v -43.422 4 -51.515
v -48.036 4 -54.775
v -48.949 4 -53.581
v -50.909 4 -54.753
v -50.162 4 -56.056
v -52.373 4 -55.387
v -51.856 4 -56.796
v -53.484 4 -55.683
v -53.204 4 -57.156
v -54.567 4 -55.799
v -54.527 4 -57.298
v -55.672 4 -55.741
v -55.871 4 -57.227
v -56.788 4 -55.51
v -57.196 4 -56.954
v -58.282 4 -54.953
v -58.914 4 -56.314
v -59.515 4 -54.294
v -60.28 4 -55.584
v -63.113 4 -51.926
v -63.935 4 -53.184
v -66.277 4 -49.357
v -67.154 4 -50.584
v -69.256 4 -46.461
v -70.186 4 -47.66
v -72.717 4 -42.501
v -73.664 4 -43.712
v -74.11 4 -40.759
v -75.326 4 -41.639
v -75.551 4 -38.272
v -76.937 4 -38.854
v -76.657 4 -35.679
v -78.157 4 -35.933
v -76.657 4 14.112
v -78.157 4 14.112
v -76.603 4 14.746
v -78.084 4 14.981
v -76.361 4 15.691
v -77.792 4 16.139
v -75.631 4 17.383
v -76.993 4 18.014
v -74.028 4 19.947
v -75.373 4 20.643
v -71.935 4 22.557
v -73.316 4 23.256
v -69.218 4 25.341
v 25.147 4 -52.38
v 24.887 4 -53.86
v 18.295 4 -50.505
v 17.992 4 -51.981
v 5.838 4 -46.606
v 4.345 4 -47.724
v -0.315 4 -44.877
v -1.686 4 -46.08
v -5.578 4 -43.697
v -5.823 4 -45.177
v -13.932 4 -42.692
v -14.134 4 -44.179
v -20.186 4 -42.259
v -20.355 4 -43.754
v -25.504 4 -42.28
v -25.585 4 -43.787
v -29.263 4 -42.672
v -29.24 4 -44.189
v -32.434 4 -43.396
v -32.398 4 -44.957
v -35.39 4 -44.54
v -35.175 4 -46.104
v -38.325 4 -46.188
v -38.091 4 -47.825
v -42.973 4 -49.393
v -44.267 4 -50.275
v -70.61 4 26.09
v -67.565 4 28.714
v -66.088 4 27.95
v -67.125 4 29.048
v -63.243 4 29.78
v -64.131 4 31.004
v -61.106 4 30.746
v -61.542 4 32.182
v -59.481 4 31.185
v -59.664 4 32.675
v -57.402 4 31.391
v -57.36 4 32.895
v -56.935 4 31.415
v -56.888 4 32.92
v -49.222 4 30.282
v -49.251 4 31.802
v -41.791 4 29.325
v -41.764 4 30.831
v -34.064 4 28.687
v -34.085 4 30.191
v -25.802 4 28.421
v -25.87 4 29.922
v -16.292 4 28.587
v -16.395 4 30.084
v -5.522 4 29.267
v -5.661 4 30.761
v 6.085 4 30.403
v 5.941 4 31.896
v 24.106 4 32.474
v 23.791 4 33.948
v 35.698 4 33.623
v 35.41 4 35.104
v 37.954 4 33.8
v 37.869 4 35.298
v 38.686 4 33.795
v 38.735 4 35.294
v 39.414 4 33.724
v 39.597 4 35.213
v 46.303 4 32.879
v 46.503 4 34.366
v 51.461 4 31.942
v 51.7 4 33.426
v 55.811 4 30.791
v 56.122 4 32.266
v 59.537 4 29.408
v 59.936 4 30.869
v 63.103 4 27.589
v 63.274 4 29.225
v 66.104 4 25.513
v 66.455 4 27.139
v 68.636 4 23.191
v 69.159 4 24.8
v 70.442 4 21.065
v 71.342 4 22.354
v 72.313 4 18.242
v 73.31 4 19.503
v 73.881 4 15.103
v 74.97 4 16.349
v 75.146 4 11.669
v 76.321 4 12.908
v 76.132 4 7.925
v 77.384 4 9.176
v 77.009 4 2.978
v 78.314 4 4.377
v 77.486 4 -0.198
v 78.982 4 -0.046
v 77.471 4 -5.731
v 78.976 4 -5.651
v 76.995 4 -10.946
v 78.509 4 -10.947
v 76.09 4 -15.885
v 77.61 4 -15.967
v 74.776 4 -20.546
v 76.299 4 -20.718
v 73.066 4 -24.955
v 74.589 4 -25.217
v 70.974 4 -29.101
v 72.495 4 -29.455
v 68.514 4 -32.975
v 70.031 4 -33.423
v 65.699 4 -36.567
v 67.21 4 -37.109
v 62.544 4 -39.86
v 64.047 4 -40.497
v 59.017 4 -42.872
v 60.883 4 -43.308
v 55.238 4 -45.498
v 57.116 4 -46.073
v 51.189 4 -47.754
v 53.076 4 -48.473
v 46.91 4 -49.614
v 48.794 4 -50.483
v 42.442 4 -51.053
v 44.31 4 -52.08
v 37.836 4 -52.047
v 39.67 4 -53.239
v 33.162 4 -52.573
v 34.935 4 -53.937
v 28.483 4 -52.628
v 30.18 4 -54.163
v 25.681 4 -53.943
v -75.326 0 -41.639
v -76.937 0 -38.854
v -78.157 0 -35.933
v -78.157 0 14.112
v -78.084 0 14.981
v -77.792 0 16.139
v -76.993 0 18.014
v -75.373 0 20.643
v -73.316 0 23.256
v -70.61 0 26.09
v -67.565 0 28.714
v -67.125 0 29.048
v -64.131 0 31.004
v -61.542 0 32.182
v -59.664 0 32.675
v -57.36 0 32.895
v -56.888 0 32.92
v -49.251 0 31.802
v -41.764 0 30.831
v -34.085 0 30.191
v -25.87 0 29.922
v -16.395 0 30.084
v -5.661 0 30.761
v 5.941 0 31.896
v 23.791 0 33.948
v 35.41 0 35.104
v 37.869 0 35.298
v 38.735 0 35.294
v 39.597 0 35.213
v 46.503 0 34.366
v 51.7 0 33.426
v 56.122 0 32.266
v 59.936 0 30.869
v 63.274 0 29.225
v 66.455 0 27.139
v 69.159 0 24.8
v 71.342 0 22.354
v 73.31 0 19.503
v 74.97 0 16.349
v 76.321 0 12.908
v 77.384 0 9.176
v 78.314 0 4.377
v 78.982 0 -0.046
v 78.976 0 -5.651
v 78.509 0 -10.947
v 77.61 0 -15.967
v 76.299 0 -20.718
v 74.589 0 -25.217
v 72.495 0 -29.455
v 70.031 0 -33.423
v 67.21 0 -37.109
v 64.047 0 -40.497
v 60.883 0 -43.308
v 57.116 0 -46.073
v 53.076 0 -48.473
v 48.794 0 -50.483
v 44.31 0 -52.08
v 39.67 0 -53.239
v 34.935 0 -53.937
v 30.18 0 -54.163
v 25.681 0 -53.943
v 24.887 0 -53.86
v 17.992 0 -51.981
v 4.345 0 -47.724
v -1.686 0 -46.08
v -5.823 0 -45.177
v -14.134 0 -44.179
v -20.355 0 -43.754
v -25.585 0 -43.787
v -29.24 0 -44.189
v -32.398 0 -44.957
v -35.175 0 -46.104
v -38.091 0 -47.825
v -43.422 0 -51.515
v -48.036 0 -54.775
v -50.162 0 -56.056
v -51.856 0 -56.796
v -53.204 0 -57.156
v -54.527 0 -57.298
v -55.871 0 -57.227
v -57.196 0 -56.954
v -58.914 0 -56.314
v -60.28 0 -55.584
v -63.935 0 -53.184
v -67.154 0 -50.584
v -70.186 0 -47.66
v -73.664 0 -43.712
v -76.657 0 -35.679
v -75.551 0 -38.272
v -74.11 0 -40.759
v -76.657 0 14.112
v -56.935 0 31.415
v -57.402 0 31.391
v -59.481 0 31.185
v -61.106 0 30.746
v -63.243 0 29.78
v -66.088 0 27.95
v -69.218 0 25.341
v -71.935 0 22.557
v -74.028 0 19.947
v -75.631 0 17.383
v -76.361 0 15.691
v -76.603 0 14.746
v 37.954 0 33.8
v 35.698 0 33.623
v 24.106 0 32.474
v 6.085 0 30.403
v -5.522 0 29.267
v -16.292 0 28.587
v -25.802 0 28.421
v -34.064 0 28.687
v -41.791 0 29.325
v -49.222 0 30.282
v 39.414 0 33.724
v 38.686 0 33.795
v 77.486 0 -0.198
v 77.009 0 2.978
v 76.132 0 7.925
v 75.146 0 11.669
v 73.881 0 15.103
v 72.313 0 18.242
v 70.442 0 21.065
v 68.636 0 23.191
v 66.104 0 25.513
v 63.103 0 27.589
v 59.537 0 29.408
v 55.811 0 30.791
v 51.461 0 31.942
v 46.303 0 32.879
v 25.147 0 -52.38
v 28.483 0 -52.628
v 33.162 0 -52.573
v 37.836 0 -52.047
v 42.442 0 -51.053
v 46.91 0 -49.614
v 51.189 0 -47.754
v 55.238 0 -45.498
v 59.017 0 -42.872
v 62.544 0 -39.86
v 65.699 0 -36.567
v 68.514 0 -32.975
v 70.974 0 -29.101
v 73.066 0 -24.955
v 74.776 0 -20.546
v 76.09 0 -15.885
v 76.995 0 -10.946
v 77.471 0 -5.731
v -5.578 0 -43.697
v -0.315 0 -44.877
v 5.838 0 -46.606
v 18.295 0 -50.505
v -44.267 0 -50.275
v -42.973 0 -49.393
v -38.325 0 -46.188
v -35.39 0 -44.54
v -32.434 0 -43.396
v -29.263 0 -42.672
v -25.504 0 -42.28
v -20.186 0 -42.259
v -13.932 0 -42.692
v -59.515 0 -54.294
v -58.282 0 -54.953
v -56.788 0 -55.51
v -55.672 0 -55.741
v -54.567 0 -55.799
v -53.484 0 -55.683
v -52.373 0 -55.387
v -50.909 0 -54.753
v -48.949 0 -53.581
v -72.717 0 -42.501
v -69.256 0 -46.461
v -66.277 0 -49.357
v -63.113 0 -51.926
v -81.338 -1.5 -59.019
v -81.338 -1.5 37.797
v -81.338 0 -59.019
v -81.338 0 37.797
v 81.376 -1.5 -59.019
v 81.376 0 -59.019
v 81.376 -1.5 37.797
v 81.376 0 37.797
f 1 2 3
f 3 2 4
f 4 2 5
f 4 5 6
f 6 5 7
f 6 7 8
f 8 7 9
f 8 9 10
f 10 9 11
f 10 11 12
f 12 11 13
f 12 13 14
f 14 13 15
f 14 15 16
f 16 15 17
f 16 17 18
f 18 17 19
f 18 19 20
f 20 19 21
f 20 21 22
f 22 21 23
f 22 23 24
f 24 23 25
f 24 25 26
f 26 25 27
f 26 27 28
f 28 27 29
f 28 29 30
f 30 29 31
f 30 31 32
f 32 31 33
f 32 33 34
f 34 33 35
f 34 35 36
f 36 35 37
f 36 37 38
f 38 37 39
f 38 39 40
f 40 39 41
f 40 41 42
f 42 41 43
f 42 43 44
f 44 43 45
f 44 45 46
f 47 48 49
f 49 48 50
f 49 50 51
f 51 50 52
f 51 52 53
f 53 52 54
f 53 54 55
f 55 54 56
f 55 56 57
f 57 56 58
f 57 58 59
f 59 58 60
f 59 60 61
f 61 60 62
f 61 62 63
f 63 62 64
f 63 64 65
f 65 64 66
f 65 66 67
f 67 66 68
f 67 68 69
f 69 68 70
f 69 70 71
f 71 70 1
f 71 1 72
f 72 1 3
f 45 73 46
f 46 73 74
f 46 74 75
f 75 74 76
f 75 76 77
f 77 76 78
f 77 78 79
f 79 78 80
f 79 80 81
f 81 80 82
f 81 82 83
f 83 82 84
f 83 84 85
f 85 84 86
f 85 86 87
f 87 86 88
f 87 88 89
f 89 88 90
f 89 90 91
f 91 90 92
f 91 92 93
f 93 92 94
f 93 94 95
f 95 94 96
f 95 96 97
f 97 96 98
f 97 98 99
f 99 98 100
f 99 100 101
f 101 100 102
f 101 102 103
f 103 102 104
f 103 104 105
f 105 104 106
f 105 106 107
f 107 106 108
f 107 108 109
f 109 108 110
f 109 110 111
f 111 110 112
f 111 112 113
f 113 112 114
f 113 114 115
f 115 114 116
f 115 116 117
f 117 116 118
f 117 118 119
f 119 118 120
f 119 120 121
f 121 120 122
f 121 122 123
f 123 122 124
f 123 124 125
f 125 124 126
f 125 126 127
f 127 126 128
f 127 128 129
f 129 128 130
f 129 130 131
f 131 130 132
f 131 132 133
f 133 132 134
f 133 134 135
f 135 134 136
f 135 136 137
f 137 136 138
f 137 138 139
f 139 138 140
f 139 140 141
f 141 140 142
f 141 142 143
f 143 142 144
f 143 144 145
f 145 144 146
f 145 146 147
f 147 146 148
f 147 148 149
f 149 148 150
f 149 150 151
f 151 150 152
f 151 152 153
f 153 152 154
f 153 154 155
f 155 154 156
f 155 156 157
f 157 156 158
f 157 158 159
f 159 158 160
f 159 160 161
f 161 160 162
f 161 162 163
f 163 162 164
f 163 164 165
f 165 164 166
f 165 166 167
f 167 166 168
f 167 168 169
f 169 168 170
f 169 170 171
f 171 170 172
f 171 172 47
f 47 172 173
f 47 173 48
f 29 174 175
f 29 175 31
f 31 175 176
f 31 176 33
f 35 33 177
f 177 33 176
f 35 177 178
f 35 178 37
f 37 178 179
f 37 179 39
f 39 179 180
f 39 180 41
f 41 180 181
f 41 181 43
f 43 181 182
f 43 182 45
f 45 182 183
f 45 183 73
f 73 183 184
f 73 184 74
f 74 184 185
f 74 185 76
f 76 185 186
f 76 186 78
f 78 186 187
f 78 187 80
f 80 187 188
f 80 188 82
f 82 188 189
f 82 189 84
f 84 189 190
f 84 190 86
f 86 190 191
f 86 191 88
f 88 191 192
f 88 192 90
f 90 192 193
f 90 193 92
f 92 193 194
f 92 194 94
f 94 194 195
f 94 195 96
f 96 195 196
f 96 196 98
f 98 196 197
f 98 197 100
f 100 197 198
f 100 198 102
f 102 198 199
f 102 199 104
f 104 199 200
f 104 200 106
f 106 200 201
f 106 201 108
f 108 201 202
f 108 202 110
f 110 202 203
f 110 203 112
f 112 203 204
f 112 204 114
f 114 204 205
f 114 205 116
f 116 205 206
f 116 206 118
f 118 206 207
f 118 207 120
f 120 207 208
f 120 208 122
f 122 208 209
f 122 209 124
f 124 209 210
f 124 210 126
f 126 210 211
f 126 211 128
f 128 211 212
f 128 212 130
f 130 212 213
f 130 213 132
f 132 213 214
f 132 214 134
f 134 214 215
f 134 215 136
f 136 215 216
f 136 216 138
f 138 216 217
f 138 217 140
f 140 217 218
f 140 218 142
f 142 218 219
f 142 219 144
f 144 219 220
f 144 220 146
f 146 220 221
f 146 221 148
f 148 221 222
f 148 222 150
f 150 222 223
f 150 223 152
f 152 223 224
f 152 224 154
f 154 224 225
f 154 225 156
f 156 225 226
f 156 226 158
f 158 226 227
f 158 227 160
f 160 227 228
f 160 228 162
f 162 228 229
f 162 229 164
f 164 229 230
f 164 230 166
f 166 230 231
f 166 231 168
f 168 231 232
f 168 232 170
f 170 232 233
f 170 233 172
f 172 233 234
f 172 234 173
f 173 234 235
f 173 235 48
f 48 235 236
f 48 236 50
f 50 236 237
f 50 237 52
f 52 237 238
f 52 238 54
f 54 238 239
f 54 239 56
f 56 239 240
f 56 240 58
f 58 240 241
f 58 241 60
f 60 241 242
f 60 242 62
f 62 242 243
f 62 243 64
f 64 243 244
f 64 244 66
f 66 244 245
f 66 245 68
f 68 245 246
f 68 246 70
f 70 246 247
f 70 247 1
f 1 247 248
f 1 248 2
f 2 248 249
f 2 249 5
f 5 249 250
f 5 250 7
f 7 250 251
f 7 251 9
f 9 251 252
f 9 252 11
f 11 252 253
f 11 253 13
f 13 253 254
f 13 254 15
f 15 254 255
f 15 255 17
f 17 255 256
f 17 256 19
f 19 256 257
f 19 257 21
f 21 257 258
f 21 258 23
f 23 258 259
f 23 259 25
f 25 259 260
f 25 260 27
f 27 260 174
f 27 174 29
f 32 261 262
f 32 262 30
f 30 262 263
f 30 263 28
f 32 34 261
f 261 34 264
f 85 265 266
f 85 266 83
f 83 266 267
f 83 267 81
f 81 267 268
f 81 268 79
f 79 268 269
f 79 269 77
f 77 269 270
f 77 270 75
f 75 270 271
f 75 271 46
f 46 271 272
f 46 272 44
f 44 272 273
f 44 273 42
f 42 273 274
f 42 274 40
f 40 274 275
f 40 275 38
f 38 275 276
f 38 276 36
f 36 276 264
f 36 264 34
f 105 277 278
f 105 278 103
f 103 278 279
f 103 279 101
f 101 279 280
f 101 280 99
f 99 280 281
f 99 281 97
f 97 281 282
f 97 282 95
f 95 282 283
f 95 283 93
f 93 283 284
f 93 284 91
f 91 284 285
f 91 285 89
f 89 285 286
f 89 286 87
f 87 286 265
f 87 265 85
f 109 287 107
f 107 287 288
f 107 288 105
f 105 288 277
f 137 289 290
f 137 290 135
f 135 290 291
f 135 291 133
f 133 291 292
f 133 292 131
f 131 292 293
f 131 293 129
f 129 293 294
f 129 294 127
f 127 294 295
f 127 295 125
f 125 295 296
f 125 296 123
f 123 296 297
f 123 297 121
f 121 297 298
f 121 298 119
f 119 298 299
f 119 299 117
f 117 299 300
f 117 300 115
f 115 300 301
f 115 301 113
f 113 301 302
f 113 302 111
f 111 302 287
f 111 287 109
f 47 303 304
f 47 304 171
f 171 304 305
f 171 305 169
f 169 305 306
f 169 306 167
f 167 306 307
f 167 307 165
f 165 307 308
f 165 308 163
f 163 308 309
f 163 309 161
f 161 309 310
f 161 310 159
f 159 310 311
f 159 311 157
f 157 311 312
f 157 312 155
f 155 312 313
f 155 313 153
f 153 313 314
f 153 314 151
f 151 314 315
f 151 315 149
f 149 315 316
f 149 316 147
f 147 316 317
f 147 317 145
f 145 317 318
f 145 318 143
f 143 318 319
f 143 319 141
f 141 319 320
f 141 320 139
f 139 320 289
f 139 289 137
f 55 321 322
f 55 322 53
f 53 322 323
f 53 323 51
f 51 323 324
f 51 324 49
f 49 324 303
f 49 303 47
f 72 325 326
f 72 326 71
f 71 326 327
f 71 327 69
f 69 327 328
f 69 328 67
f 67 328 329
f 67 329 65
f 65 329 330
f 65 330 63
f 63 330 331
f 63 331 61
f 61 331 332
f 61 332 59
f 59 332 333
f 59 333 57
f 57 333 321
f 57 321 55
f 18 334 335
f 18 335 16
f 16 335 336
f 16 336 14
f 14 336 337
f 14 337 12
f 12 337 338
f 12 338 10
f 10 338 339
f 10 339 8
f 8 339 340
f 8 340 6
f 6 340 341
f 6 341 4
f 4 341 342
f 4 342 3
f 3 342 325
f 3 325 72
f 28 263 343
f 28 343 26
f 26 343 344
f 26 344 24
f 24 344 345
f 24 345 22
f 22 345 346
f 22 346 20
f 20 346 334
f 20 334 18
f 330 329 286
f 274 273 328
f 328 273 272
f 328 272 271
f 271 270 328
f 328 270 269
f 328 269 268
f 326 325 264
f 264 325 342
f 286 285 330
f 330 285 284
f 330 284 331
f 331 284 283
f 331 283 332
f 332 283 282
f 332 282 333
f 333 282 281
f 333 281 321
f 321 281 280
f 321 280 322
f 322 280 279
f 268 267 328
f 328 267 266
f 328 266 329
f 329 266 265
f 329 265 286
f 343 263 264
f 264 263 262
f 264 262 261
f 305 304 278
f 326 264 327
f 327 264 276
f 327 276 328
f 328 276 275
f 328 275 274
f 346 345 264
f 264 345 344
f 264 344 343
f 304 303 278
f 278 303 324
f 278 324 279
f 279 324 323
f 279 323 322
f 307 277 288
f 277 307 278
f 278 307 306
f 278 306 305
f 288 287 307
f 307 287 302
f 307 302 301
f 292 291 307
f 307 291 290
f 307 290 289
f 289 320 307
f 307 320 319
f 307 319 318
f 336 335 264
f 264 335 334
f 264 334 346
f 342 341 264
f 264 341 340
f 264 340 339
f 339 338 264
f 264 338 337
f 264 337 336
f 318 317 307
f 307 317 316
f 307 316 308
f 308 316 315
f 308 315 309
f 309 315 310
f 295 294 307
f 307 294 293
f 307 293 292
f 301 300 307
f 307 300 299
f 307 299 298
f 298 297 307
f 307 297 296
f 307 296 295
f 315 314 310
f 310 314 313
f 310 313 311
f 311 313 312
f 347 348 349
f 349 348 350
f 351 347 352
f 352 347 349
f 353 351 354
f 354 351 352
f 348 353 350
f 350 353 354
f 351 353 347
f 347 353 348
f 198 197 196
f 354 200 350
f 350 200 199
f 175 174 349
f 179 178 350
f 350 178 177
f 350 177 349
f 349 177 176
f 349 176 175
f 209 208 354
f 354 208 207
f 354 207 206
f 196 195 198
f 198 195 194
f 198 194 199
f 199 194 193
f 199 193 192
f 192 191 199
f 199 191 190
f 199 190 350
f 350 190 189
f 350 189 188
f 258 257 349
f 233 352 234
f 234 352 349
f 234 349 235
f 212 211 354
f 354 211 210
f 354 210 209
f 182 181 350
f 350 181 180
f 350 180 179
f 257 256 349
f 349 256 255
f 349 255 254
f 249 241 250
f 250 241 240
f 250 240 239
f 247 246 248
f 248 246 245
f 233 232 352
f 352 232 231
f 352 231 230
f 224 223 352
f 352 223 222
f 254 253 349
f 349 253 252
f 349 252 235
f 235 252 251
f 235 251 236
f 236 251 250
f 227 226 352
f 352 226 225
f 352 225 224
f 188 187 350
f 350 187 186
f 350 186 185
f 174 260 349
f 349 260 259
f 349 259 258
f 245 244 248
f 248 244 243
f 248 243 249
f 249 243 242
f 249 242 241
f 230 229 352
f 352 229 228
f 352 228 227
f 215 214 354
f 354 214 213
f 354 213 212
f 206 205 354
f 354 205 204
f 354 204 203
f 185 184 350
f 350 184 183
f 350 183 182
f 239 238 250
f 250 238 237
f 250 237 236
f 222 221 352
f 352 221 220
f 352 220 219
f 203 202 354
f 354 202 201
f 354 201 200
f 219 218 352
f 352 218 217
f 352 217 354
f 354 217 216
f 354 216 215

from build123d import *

# Parameters (mm, degrees)
BOSS_EXTRUDE2_DEPTH = 4
SKETCH3_W           = 162.713811117
SKETCH3_H           = 96.815600969
BOSS_EXTRUDE3_DEPTH = 1.5


with BuildPart() as part:
    # Sketch2 → Boss-Extrude2 (new body)
    with BuildSketch(Plane(origin=(0, 0, 0), x_dir=(1, 0, 0), z_dir=(0, 1, 0))):
        with BuildLine():
            Line((-78.157135648, 35.933017955), (-78.157135648, -14.112200016))
            add(Edge.make_bspline(
                [(-78.157135648, -14.112200016), (-78.155939648, -14.752373068), (-77.91728619, -15.977732307), (-77.067841768, -17.98284043), (-75.853766997, -20.009770375), (-73.882725179, -22.698478403), (-70.990105914, -25.858420252), (-67.409604046, -28.950378503), (-64.099125185, -31.13485728), (-61.237861598, -32.390367883), (-59.243018884, -32.778941146), (-57.84210102, -32.875591912), (-57.21182785, -32.900669531), (-56.88815566, -32.920328572)],
                knots=[0.000409109, 0.000409109, 0.000409109, 0.000409109, 0.062842692, 0.125276275, 0.187709857, 0.25014344, 0.375010605, 0.499877771, 0.624744936, 0.749612101, 0.874479267, 0.936912849, 0.999346432, 0.999346432, 0.999346432, 0.999346432], degree=3))
            add(Edge.make_bspline(
                [(-56.88815566, -32.920328572), (-56.642696558, -32.89075012), (-56.160280632, -32.83055745), (-55.130884334, -32.690361106), (-53.775402575, -32.490990423), (-52.023319465, -32.222109613), (-49.529202359, -31.839803624), (-46.118946018, -31.34265718), (-41.582935401, -30.787201605), (-36.628570251, -30.3313494), (-29.499663542, -29.915818278), (-19.674874473, -29.844145156), (-6.636878998, -30.578186936), (5.085601081, -31.774869617), (14.875722867, -32.919022634), (22.392678178, -33.800910905), (30.053166384, -34.637100414), (35.270389761, -35.105189919), (37.869497862, -35.297508229)],
                knots=[-0.001372968, -0.001372968, -0.001372968, -0.001372968, 0.014272852, 0.029918673, 0.061210313, 0.092501954, 0.123793594, 0.186376875, 0.248960156, 0.311543437, 0.374126718, 0.49929328, 0.624459842, 0.749626404, 0.812209685, 0.874792966, 0.937376247, 0.999959528, 0.999959528, 0.999959528, 0.999959528], degree=3))
            ThreePointArc((37.869497862, -35.297508229), (38.735359767, -35.294029869), (39.597461801, -35.21335137))
            add(Edge.make_bspline(
                [(39.597461801, -35.21335137), (41.139767175, -35.04904175), (44.235594855, -34.704530206), (50.30182099, -33.820891122), (57.45023856, -32.130120831), (64.799112885, -28.716371013), (70.578195113, -23.811075447), (73.965626007, -18.700600273), (75.883187129, -14.305672198), (76.967229357, -10.961986186), (77.747932295, -7.691449122), (78.199718827, -5.145010951), (78.480402727, -3.296584904), (78.661323244, -2.03081469), (78.823959845, -0.900875926), (78.927618693, -0.280644372), (78.981646775, 0.045841454)],
                knots=[-8.5538e-05, -8.5538e-05, -8.5538e-05, -8.5538e-05, 0.063427598, 0.126940734, 0.253967006, 0.380993278, 0.50801955, 0.635045822, 0.698558958, 0.762072094, 0.82558523, 0.889098367, 0.920854935, 0.952611503, 0.984368071, 1.016124639, 1.016124639, 1.016124639, 1.016124639], degree=3))
            add(Edge.make_bspline(
                [(78.981646775, 0.045841454), (79.027094782, 1.179674429), (79.064720926, 3.473913783), (78.944393791, 6.769688051), (78.658660296, 9.974948397), (78.064183944, 14.11691568), (76.934054174, 19.032604235), (74.364574026, 26.339835799), (69.843932164, 34.39440102), (62.712031102, 42.254317161), (54.262624742, 48.235080745), (44.879874513, 52.267066292), (34.952870186, 54.2885898), (28.210881807, 54.235085369), (24.886864743, 53.860071186)],
                knots=[-0.00040736, -0.00040736, -0.00040736, -0.00040736, 0.030879521, 0.062166401, 0.093453282, 0.124740163, 0.187313924, 0.249887685, 0.375035208, 0.50018273, 0.625330253, 0.750477775, 0.875625298, 1.00077282, 1.00077282, 1.00077282, 1.00077282], degree=3))
            add(Edge.make_bspline(
                [(24.886864743, 53.860071186), (22.283887479, 53.234934331), (17.122333316, 51.770006392), (6.978810179, 48.483475597), (-0.62058189, 46.171110399), (-5.82261915, 45.177242661)],
                knots=[-0.001280714, -0.001280714, -0.001280714, -0.001280714, 0.24771449, 0.496709693, 0.9947001, 0.9947001, 0.9947001, 0.9947001], degree=3))
            add(Edge.make_bspline(
                [(-5.82261915, 45.177242661), (-6.846271695, 45.033725935), (-8.877911438, 44.761027761), (-13.088195507, 44.259306095), (-18.264324114, 43.792662786), (-23.901821518, 43.633821839), (-28.702631501, 43.985910311), (-32.652338295, 44.908532737), (-35.447699325, 46.177033317), (-37.648428, 47.515223041), (-39.36186509, 48.682387067), (-40.924837411, 49.79297126), (-42.29202762, 50.749624529), (-43.050520295, 51.26512862), (-43.422492414, 51.515145542)],
                knots=[0.000305139, 0.000305139, 0.000305139, 0.000305139, 0.063047866, 0.125790592, 0.251276044, 0.376761496, 0.502246948, 0.627732401, 0.753217853, 0.815960579, 0.878703305, 0.941446031, 0.972817394, 1.004188757, 1.004188757, 1.004188757, 1.004188757], degree=3))
            add(Edge.make_bspline(
                [(-43.422492414, 51.515145542), (-43.678616345, 51.691810139), (-44.195843457, 52.052612418), (-45.168447607, 52.746174672), (-46.308029686, 53.571366973), (-47.576953364, 54.472121728), (-49.172650358, 55.533487702), (-51.044076917, 56.564817563), (-53.214706641, 57.25190115), (-55.319518496, 57.36517967), (-56.956778648, 57.053303598), (-58.147723245, 56.650637672), (-58.968859533, 56.298465061), (-59.57079354, 55.992027065), (-60.005881741, 55.748275575), (-60.18615305, 55.640555889), (-60.280341084, 55.583909473)],
                knots=[-0.002293809, -0.002293809, -0.002293809, -0.002293809, 0.029244556, 0.060782921, 0.123859651, 0.186936381, 0.250013112, 0.376166572, 0.502320033, 0.628473494, 0.754626954, 0.817703684, 0.880780415, 0.943857145, 0.97539551, 1.006933875, 1.006933875, 1.006933875, 1.006933875], degree=3))
            add(Edge.make_bspline(
                [(-60.280341084, 55.583909473), (-60.714952444, 55.32966131), (-61.58200578, 54.800998059), (-63.22221391, 53.718688993), (-65.910533435, 51.737250649), (-69.243121764, 48.741031753), (-72.024440988, 45.692878732), (-73.73920341, 43.627948753), (-74.665747867, 42.475614869), (-75.104907594, 41.920162476), (-75.326466464, 41.639029179)],
                knots=[0.000426683, 0.000426683, 0.000426683, 0.000426683, 0.06326809, 0.126109496, 0.251792309, 0.503157934, 0.75452356, 0.880206373, 0.943047779, 1.005889185, 1.005889185, 1.005889185, 1.005889185], degree=3))
            add(Edge.make_bspline(
                [(-75.326466464, 41.639029179), (-75.91997327, 40.746000391), (-77.006363229, 38.87012428), (-77.815024814, 36.931350625), (-78.157135648, 35.933017955)],
                knots=[0.49954614, 0.49954614, 0.49954614, 0.49954614, 0.499770438, 0.499994735, 0.499994735, 0.499994735, 0.499994735], degree=3))
        make_face()
        with BuildLine():
            Line((-76.657135648, 35.679066848), (-76.657131969, -14.112200006))
            add(Edge.make_bspline(
                [(-76.657131969, -14.112200006), (-76.656531466, -14.340940611), (-76.615532486, -14.780598422), (-76.365572342, -15.779633829), (-75.747022441, -17.26132375), (-74.637885805, -19.124336874), (-72.785033195, -21.666520065), (-70.027170511, -24.69605914), (-66.602535352, -27.672706005), (-63.476928114, -29.755963329), (-60.874171764, -30.916444124), (-58.823492797, -31.343417769), (-57.575149509, -31.379323699), (-56.935294504, -31.415052584)],
                knots=[0.000537135, 0.000537135, 0.000537135, 0.000537135, 0.031486368, 0.0624356, 0.124334065, 0.186232529, 0.248130994, 0.371927923, 0.495724853, 0.619521782, 0.743318712, 0.867115641, 0.99091257, 0.99091257, 0.99091257, 0.99091257], degree=3))
            add(Edge.make_bspline(
                [(-56.935294504, -31.415052584), (-56.694661939, -31.385667933), (-56.223603705, -31.325866144), (-55.203470476, -31.185340461), (-53.856324583, -30.986089165), (-52.101912742, -30.716485052), (-49.596504581, -30.333088531), (-46.159583081, -29.834426322), (-41.581560568, -29.27829752), (-36.581457935, -28.823458861), (-29.390698582, -28.411647175), (-19.497861615, -28.34813345), (-6.407460838, -29.092198199), (7.671085742, -30.53241701), (20.045487362, -32.035993294), (30.203761894, -33.14440123), (35.375718345, -33.608610084), (37.954323811, -33.799682751)],
                knots=[0.001496116, 0.001496116, 0.001496116, 0.001496116, 0.017093844, 0.032691572, 0.063887028, 0.095082483, 0.126277939, 0.18866885, 0.251059761, 0.313450672, 0.375841584, 0.500623406, 0.625405228, 0.750187051, 0.874968873, 0.937359784, 0.999750695, 0.999750695, 0.999750695, 0.999750695], degree=3))
            ThreePointArc((37.954323811, -33.799682751), (38.685754809, -33.794634443), (39.413826008, -33.724426748))
            add(Edge.make_bspline(
                [(39.413826008, -33.724426748), (40.941587091, -33.561666605), (44.016933216, -33.219818338), (49.974357897, -32.353936258), (56.920589371, -30.71373603), (63.928940419, -27.467086873), (69.37640321, -22.871797273), (72.592452605, -18.066629926), (74.435319216, -13.886326636), (75.48738516, -10.677838243), (76.252417838, -7.512200065), (76.699454408, -5.023141593), (76.979420749, -3.19383512), (77.160428463, -1.932130727), (77.326847127, -0.768127182), (77.43119015, -0.135396957), (77.486499649, 0.198499569)],
                knots=[-0.000425037, -0.000425037, -0.000425037, -0.000425037, 0.062921118, 0.126267272, 0.25295958, 0.379651889, 0.506344198, 0.633036506, 0.696382661, 0.759728815, 0.823074969, 0.886421123, 0.918094201, 0.949767278, 0.981440355, 1.013113432, 1.013113432, 1.013113432, 1.013113432], degree=3))
            add(Edge.make_bspline(
                [(77.486499649, 0.198499569), (77.529376832, 1.304965595), (77.563148654, 3.54640861), (77.441718254, 6.750377683), (77.160012317, 9.869265522), (76.577911195, 13.891943853), (75.476896458, 18.658811745), (72.98279324, 25.733467023), (68.609003035, 33.517419822), (61.718308835, 41.112614632), (53.552963068, 46.899058336), (44.478248309, 50.80844929), (34.878936934, 52.776287746), (28.361333333, 52.735962773), (25.146710313, 52.37977831)],
                knots=[0.000462258, 0.000462258, 0.000462258, 0.000462258, 0.031684846, 0.062907434, 0.094130022, 0.125352611, 0.187797787, 0.250242963, 0.375133316, 0.500023669, 0.624914022, 0.749804375, 0.874694728, 0.999585081, 0.999585081, 0.999585081, 0.999585081], degree=3))
            add(Edge.make_bspline(
                [(25.146710313, 52.37977831), (19.996880057, 51.137756564), (12.46311825, 48.651529878), (2.282936309, 45.485639859), (-2.943523861, 44.200173327), (-5.577592643, 43.696925109)],
                knots=[0.001647883, 0.001647883, 0.001647883, 0.001647883, 0.49875575, 0.747309683, 0.995863617, 0.995863617, 0.995863617, 0.995863617], degree=3))
            add(Edge.make_bspline(
                [(-5.577592643, 43.696925109), (-6.608686649, 43.552365086), (-8.654048562, 43.277286792), (-12.900719679, 42.770558047), (-18.1416297, 42.296463944), (-23.901116409, 42.131322734), (-28.894462751, 42.491806828), (-33.123562317, 43.472784898), (-36.152698653, 44.848626269), (-38.469673728, 46.259294554), (-40.227820016, 47.45749815), (-41.798031425, 48.573285436), (-43.149641227, 49.51893077), (-43.899165402, 50.028194293), (-44.266747833, 50.275260736)],
                knots=[-0.000445954, -0.000445954, -0.000445954, -0.000445954, 0.062356884, 0.125159722, 0.250765398, 0.376371074, 0.50197675, 0.627582426, 0.753188102, 0.81599094, 0.878793778, 0.941596616, 0.972998035, 1.004399454, 1.004399454, 1.004399454, 1.004399454], degree=3))
            add(Edge.make_bspline(
                [(-44.266747833, 50.275260736), (-44.527408356, 50.455054502), (-45.054249251, 50.822434727), (-46.041767018, 51.526583503), (-47.182852187, 52.352899291), (-48.430502857, 53.238394378), (-49.959355128, 54.254926441), (-51.669032297, 55.190671355), (-53.504011998, 55.762856637), (-55.217112111, 55.853610566), (-56.862754072, 55.542492613), (-58.118908127, 55.048422463), (-58.991920159, 54.602781729), (-59.334940415, 54.402109669), (-59.515062385, 54.293781003)],
                knots=[-0.002598924, -0.002598924, -0.002598924, -0.002598924, 0.0289762, 0.060551324, 0.123701572, 0.18685182, 0.250002068, 0.376302564, 0.502603061, 0.628903557, 0.755204053, 0.881504549, 0.944654797, 1.007805046, 1.007805046, 1.007805046, 1.007805046], degree=3))
            add(Edge.make_bspline(
                [(-59.515062385, 54.293781003), (-59.933000678, 54.049286604), (-60.767107189, 53.541199426), (-62.34414566, 52.501351132), (-64.932965719, 50.59560099), (-68.153458432, 47.704906594), (-70.856343693, 44.749408068), (-72.789087262, 42.425042933), (-73.666165752, 41.322178137), (-74.110264621, 40.758884118)],
                knots=[4.7776e-05, 4.7776e-05, 4.7776e-05, 4.7776e-05, 0.062686674, 0.125325571, 0.250603366, 0.501158957, 0.751714547, 0.876992343, 1.002270138, 1.002270138, 1.002270138, 1.002270138], degree=3))
            add(Edge.make_bspline(
                [(-74.110264621, 40.758884118), (-74.638638681, 39.959603427), (-75.611693177, 38.281434426), (-76.343021988, 36.564567869), (-76.657135648, 35.679066848)],
                knots=[0.49955057, 0.49955057, 0.49955057, 0.49955057, 0.499763362, 0.499976154, 0.499976154, 0.499976154, 0.499976154], degree=3))
        make_face(mode=Mode.SUBTRACT)
    extrude(amount=BOSS_EXTRUDE2_DEPTH)

    # Sketch3 → Boss-Extrude3 (add)
    with BuildSketch(Plane.XZ):
        with Locations((0.019032639, -10.611106307)):
            Rectangle(SKETCH3_W, SKETCH3_H)
    extrude(amount=BOSS_EXTRUDE3_DEPTH)


solid = part.part
